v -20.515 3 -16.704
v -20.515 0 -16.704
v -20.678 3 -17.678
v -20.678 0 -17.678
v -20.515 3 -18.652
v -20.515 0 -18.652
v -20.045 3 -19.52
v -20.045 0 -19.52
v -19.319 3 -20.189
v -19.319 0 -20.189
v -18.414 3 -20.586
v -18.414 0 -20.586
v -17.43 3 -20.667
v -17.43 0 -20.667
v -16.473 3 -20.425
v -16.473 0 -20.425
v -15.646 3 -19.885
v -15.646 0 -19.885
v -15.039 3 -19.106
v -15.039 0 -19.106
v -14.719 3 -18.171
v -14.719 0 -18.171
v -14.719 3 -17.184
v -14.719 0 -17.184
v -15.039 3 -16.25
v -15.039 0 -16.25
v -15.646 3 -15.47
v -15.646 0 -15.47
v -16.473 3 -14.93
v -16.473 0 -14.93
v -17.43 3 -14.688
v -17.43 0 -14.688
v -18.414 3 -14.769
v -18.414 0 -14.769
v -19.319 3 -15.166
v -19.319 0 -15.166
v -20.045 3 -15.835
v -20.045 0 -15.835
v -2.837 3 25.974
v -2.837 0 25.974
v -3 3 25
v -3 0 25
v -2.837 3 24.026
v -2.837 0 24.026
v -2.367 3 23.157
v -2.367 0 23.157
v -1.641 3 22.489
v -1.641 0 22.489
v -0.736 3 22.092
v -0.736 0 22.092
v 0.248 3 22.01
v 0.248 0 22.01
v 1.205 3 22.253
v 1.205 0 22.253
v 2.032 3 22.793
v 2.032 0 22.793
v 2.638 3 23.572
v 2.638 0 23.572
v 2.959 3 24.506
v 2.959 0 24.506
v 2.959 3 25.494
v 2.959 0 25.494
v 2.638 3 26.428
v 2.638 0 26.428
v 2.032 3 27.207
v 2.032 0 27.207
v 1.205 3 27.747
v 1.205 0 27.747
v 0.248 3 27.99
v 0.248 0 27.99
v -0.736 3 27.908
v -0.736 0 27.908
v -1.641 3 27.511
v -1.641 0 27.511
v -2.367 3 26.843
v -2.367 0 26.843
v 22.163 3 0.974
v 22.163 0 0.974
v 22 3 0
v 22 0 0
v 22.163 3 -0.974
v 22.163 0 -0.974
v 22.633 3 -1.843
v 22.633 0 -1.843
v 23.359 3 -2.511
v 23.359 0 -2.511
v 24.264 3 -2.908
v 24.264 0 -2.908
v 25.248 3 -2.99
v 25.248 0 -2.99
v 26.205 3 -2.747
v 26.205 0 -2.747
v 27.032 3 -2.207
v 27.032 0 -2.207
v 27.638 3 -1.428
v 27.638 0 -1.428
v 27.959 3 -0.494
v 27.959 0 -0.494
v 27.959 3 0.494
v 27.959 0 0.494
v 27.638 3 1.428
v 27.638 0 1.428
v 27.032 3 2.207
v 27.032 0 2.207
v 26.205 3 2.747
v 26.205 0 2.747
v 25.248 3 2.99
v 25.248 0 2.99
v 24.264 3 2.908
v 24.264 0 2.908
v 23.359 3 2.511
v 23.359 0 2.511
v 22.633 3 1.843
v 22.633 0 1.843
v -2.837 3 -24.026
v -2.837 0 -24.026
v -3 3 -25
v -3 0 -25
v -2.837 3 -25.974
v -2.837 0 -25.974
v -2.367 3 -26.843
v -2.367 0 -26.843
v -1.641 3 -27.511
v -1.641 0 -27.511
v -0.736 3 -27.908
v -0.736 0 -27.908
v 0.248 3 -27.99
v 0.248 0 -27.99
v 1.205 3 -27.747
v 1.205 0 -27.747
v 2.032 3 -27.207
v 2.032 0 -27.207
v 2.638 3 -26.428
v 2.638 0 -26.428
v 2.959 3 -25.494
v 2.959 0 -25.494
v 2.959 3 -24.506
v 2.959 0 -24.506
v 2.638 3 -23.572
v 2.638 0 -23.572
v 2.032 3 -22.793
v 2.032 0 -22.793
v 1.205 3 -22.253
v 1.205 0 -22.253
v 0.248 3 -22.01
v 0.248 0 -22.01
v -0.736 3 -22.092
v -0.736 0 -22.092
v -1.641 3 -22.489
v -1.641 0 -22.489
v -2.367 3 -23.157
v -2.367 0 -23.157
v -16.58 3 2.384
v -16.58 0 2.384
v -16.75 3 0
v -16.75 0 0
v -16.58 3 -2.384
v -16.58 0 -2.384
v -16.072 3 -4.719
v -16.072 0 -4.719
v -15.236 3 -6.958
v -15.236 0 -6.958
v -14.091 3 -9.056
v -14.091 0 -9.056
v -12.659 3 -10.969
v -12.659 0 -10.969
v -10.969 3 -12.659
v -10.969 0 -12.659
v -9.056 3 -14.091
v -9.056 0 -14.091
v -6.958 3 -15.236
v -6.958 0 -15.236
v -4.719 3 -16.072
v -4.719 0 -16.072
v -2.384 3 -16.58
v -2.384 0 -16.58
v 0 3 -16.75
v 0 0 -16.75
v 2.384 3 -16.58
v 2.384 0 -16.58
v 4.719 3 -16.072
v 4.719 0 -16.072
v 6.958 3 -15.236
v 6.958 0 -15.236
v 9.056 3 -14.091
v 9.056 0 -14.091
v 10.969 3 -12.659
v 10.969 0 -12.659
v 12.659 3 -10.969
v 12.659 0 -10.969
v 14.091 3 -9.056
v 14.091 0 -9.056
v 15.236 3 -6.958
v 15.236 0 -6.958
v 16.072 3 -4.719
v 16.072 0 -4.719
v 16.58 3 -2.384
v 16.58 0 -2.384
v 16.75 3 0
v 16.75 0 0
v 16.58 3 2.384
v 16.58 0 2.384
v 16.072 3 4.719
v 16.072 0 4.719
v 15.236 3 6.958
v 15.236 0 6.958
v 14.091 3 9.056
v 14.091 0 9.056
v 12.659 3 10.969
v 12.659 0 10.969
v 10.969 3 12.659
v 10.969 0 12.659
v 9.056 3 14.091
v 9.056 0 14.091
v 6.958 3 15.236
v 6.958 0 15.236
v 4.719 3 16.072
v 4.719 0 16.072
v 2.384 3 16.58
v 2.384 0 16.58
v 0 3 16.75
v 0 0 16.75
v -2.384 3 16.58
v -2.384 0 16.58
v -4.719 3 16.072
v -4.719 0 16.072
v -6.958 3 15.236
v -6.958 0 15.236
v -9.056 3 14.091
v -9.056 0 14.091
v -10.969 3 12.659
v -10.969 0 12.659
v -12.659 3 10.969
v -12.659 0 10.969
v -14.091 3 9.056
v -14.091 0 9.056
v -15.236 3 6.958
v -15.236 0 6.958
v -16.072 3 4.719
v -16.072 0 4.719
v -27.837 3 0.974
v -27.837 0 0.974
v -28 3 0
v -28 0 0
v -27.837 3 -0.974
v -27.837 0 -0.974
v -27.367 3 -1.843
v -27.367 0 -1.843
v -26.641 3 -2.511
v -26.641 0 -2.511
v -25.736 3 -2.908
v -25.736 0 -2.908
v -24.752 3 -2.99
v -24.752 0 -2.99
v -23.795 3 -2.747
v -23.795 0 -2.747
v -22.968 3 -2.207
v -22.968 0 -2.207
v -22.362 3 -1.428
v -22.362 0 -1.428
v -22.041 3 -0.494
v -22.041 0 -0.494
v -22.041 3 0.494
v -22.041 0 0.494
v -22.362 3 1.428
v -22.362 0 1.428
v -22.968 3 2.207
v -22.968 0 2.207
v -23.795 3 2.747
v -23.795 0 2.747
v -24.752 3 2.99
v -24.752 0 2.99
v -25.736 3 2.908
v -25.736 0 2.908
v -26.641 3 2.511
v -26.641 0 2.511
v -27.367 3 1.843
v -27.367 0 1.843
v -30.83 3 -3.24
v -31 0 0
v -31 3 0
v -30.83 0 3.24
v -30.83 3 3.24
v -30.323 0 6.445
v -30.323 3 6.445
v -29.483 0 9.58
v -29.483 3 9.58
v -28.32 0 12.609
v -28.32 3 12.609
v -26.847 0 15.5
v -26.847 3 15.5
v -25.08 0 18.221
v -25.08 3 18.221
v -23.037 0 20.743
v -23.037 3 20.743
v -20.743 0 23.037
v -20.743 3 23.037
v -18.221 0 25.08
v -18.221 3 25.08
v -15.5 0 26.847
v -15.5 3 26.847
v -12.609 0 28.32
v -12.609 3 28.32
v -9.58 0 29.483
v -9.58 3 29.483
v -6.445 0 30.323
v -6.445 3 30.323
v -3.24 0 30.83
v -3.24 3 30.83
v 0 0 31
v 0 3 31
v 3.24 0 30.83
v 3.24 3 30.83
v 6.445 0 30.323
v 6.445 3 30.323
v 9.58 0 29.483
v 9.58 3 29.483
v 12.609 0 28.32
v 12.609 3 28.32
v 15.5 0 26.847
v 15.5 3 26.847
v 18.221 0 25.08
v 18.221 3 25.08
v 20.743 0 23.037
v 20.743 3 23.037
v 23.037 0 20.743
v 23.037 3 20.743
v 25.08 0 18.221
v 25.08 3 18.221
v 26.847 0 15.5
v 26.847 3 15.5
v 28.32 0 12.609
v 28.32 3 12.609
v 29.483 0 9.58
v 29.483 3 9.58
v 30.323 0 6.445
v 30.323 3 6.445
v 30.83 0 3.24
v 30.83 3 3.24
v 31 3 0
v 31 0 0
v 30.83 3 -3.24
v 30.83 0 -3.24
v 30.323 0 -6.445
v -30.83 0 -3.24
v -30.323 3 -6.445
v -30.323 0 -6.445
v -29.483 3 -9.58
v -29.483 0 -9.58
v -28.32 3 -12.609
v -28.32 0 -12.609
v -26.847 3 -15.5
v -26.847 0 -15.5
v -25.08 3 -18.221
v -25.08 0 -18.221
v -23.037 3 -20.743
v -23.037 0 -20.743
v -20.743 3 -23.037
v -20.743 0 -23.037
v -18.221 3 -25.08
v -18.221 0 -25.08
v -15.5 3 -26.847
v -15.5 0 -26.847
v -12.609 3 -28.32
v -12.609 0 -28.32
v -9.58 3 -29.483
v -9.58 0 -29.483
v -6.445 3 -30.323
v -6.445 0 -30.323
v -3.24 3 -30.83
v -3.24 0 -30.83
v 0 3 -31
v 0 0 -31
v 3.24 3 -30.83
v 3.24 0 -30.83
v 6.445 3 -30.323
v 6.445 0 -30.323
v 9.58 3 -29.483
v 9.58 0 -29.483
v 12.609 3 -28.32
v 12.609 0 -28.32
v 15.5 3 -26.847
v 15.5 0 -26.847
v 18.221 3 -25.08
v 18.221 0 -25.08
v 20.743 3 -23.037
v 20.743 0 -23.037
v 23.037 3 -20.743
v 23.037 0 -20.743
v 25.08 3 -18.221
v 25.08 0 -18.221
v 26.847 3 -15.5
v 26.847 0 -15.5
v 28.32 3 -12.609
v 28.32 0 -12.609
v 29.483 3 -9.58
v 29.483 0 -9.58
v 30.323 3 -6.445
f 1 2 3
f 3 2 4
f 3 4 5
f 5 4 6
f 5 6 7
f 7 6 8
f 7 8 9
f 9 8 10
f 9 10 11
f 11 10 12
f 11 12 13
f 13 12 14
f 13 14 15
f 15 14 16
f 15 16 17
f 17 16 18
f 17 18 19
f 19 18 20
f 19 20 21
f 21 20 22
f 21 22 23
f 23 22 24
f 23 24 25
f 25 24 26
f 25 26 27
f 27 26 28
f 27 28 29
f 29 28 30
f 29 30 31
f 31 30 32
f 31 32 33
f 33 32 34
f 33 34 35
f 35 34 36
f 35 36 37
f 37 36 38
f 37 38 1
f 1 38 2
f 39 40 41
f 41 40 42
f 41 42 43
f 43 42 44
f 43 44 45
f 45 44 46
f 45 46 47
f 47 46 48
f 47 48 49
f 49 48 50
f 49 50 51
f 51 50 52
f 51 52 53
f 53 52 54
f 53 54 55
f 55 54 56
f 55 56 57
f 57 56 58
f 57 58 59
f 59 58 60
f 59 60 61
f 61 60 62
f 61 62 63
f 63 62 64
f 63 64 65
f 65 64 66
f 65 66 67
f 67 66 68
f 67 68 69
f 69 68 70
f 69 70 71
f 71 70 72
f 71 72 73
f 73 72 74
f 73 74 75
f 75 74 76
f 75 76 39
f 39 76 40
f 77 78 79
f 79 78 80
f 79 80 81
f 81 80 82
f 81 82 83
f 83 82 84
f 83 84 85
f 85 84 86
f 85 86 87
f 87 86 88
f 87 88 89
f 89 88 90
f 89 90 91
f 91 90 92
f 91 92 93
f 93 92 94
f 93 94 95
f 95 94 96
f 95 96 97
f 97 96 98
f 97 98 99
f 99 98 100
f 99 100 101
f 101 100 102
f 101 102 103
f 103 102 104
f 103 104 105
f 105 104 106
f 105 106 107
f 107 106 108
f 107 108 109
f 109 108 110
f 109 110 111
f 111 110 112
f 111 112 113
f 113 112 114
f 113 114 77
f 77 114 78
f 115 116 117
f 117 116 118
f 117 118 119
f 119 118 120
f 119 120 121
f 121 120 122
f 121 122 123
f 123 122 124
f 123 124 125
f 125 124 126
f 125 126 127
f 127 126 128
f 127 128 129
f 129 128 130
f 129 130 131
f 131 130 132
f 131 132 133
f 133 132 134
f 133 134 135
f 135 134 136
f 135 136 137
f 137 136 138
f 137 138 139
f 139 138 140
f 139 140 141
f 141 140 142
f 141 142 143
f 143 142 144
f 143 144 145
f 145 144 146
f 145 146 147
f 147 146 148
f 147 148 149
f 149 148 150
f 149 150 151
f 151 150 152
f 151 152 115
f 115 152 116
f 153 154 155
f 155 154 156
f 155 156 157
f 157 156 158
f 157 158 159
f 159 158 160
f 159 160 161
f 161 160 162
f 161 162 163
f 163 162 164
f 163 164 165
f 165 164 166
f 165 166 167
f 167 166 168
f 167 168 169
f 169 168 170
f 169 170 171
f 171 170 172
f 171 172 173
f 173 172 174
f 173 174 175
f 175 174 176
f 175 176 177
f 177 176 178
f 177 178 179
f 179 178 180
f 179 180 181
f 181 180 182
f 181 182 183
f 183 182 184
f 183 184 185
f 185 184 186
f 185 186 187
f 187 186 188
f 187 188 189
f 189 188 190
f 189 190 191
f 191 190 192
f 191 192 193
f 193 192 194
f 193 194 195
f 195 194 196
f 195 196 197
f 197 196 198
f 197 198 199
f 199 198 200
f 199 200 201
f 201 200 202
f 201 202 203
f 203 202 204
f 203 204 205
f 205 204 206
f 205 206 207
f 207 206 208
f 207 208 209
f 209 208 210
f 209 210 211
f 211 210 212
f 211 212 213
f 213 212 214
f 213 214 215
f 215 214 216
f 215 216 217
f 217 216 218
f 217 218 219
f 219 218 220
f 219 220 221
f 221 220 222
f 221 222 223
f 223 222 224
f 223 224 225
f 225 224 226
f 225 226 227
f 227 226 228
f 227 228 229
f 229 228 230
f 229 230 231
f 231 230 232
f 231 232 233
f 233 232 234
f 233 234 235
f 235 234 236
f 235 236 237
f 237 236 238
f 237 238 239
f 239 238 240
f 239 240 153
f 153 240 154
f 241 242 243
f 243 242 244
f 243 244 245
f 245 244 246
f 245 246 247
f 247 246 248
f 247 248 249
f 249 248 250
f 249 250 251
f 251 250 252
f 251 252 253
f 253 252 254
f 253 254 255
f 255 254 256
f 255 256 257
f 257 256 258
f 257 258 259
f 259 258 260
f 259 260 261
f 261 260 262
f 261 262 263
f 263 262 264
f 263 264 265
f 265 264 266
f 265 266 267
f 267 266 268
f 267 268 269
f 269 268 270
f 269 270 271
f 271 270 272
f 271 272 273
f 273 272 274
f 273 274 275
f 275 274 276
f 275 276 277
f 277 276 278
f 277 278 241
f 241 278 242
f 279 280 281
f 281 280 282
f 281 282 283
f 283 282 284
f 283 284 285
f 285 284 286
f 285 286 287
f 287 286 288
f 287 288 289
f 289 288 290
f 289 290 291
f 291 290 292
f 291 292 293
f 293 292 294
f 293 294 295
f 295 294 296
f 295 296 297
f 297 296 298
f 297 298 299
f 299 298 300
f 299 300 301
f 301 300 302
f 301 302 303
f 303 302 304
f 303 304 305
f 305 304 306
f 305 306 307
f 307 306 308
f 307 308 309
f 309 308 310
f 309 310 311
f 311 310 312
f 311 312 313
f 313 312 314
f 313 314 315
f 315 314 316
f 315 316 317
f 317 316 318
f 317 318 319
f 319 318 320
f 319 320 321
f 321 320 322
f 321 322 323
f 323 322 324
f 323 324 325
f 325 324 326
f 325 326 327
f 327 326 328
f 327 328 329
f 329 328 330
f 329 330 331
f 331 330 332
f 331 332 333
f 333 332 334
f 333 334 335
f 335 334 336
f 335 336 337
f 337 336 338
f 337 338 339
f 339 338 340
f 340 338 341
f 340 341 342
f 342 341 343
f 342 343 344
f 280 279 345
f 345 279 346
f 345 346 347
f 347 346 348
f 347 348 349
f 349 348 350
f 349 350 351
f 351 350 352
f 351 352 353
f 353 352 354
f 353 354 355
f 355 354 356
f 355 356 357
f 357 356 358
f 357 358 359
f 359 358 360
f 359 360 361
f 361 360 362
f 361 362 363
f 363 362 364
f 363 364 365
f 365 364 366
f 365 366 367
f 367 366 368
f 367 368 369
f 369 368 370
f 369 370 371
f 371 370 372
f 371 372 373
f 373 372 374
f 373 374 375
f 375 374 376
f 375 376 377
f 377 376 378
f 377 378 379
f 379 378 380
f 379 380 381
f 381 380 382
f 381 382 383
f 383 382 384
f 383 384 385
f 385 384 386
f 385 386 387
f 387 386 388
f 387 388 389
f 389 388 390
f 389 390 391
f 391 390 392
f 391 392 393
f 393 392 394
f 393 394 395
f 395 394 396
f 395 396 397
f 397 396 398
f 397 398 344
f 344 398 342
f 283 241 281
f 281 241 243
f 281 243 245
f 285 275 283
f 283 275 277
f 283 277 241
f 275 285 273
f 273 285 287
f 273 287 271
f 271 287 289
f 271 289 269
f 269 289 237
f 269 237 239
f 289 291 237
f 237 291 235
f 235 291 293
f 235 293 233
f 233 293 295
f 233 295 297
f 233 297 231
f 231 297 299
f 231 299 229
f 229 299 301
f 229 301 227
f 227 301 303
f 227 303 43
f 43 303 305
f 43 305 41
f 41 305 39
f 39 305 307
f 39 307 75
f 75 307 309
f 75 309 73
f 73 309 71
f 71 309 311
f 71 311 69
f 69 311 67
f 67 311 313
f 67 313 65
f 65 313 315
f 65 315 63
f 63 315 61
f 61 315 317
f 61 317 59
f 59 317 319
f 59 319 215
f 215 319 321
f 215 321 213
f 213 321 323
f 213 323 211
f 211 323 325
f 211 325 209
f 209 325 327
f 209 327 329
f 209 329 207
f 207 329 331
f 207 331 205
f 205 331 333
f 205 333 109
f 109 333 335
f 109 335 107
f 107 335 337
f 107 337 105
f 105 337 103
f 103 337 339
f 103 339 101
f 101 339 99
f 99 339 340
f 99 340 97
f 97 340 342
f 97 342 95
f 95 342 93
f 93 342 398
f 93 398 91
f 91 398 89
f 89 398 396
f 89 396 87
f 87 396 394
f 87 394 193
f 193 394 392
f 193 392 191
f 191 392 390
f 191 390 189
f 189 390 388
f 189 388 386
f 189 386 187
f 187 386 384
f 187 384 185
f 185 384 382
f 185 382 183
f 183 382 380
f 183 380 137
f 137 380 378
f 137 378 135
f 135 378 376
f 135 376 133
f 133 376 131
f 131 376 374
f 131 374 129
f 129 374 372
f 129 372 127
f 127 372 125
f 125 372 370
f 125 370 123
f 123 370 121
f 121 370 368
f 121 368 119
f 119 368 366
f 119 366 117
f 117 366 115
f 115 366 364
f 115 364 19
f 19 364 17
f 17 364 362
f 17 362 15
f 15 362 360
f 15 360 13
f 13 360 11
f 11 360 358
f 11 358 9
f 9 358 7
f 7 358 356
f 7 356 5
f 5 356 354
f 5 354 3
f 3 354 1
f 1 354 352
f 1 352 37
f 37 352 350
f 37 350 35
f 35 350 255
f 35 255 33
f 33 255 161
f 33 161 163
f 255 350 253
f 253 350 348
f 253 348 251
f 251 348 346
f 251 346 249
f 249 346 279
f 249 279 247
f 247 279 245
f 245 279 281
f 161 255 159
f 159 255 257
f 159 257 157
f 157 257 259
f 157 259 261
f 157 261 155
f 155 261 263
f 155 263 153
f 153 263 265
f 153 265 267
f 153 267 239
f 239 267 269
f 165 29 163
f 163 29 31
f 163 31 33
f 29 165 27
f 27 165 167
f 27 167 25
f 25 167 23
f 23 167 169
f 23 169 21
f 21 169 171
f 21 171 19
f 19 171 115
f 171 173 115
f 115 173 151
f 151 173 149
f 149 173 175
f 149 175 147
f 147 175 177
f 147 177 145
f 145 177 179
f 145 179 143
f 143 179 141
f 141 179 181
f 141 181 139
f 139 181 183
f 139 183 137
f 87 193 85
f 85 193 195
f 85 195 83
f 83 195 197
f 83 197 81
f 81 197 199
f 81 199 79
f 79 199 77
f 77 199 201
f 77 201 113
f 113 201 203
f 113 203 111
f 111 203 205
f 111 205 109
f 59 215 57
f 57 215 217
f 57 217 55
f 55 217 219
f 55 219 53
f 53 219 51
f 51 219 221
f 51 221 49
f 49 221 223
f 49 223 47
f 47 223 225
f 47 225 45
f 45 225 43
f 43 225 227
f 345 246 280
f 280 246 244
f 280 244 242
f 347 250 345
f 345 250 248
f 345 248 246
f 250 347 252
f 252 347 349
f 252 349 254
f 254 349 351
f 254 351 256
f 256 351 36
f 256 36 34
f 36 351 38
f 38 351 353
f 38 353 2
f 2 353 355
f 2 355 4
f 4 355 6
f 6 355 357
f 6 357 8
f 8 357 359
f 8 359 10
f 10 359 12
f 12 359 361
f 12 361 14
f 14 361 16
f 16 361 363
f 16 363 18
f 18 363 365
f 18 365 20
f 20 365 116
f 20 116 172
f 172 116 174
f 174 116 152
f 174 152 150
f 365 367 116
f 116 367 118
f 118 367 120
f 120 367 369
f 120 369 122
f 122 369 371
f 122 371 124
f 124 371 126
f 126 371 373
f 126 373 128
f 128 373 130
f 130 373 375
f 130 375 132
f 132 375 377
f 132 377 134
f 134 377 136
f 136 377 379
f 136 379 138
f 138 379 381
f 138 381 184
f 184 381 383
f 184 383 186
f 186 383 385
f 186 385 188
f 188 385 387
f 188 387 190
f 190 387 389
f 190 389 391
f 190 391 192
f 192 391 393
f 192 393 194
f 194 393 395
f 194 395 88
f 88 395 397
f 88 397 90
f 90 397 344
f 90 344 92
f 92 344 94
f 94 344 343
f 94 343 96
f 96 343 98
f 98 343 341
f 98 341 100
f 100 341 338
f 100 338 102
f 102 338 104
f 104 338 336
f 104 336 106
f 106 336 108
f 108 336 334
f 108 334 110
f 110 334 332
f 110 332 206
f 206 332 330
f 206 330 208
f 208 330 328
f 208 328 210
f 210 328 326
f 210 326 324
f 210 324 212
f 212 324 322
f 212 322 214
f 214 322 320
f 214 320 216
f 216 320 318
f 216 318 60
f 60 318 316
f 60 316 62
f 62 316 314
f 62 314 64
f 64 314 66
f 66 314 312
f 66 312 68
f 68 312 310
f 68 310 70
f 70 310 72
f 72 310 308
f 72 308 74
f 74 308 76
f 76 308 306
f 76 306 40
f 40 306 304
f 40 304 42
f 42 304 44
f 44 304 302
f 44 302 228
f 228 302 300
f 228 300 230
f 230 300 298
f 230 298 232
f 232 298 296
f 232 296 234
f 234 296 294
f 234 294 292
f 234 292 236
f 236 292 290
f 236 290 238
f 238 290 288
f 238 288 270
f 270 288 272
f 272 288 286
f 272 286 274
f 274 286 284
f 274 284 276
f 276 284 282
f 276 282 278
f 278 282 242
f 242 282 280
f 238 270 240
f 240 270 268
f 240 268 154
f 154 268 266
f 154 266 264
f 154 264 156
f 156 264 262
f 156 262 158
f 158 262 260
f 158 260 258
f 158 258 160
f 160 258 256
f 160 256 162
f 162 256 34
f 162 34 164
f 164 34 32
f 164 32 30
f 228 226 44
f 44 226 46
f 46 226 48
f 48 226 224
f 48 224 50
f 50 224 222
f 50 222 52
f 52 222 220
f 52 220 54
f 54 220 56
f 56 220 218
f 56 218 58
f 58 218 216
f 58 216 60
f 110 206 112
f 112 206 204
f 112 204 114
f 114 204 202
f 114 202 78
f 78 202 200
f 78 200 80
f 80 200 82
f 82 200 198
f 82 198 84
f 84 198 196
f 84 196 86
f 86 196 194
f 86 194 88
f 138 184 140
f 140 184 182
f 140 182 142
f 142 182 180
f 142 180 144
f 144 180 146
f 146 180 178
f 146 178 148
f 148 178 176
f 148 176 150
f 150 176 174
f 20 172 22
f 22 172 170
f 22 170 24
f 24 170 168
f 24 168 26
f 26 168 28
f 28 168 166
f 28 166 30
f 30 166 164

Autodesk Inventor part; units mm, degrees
ref_plane "YZ Plane" through (0, 0, 0) normal (1, 0, 0) x (0, 1, 0)
ref_plane "XZ Plane" through (0, 0, 0) normal (0, 1, 0) x (-1, 0, 0)
ref_plane "XY Plane" through (0, 0, 0) normal (0, 0, 1) x (1, 0, 0)
sketch "Sketch2" plane through (0, 0, 0) normal (0, 1, 0) x (-1, 0, 0)
  circle A0 centre (0, 0) radius 16.75
  circle A1 centre (0, 0) radius 25
  circle A2 centre (0, 0) radius 31
  circle A3 centre (25, 0) radius 3
  circle A4 centre (0, 25) radius 3
  circle A5 centre (0, -25) radius 3
  circle A6 centre (-25, 0) radius 3
  circle A7 centre (17.6777, -17.6777) radius 3
  line L0 (0, 0) -> (25, 0)
  line L1 (0, 0) -> (17.6777, -17.6777)
  dimension "d0" = 33.5
  dimension "d1" = 50
  dimension "d2" = 62
  dimension "d3" = 6
  dimension "d4" = 6
  dimension "d5" = 45
extrude "Extrusion1" add sketch "Sketch2" along normal blind 3 contours L0 A3 A1 A7 L1 A0 | A0 L1 A7 A1 A5 A6 A4 A3 L0 | A2
properties part number "robotiq_ur5_flange_adapter_flattener"
